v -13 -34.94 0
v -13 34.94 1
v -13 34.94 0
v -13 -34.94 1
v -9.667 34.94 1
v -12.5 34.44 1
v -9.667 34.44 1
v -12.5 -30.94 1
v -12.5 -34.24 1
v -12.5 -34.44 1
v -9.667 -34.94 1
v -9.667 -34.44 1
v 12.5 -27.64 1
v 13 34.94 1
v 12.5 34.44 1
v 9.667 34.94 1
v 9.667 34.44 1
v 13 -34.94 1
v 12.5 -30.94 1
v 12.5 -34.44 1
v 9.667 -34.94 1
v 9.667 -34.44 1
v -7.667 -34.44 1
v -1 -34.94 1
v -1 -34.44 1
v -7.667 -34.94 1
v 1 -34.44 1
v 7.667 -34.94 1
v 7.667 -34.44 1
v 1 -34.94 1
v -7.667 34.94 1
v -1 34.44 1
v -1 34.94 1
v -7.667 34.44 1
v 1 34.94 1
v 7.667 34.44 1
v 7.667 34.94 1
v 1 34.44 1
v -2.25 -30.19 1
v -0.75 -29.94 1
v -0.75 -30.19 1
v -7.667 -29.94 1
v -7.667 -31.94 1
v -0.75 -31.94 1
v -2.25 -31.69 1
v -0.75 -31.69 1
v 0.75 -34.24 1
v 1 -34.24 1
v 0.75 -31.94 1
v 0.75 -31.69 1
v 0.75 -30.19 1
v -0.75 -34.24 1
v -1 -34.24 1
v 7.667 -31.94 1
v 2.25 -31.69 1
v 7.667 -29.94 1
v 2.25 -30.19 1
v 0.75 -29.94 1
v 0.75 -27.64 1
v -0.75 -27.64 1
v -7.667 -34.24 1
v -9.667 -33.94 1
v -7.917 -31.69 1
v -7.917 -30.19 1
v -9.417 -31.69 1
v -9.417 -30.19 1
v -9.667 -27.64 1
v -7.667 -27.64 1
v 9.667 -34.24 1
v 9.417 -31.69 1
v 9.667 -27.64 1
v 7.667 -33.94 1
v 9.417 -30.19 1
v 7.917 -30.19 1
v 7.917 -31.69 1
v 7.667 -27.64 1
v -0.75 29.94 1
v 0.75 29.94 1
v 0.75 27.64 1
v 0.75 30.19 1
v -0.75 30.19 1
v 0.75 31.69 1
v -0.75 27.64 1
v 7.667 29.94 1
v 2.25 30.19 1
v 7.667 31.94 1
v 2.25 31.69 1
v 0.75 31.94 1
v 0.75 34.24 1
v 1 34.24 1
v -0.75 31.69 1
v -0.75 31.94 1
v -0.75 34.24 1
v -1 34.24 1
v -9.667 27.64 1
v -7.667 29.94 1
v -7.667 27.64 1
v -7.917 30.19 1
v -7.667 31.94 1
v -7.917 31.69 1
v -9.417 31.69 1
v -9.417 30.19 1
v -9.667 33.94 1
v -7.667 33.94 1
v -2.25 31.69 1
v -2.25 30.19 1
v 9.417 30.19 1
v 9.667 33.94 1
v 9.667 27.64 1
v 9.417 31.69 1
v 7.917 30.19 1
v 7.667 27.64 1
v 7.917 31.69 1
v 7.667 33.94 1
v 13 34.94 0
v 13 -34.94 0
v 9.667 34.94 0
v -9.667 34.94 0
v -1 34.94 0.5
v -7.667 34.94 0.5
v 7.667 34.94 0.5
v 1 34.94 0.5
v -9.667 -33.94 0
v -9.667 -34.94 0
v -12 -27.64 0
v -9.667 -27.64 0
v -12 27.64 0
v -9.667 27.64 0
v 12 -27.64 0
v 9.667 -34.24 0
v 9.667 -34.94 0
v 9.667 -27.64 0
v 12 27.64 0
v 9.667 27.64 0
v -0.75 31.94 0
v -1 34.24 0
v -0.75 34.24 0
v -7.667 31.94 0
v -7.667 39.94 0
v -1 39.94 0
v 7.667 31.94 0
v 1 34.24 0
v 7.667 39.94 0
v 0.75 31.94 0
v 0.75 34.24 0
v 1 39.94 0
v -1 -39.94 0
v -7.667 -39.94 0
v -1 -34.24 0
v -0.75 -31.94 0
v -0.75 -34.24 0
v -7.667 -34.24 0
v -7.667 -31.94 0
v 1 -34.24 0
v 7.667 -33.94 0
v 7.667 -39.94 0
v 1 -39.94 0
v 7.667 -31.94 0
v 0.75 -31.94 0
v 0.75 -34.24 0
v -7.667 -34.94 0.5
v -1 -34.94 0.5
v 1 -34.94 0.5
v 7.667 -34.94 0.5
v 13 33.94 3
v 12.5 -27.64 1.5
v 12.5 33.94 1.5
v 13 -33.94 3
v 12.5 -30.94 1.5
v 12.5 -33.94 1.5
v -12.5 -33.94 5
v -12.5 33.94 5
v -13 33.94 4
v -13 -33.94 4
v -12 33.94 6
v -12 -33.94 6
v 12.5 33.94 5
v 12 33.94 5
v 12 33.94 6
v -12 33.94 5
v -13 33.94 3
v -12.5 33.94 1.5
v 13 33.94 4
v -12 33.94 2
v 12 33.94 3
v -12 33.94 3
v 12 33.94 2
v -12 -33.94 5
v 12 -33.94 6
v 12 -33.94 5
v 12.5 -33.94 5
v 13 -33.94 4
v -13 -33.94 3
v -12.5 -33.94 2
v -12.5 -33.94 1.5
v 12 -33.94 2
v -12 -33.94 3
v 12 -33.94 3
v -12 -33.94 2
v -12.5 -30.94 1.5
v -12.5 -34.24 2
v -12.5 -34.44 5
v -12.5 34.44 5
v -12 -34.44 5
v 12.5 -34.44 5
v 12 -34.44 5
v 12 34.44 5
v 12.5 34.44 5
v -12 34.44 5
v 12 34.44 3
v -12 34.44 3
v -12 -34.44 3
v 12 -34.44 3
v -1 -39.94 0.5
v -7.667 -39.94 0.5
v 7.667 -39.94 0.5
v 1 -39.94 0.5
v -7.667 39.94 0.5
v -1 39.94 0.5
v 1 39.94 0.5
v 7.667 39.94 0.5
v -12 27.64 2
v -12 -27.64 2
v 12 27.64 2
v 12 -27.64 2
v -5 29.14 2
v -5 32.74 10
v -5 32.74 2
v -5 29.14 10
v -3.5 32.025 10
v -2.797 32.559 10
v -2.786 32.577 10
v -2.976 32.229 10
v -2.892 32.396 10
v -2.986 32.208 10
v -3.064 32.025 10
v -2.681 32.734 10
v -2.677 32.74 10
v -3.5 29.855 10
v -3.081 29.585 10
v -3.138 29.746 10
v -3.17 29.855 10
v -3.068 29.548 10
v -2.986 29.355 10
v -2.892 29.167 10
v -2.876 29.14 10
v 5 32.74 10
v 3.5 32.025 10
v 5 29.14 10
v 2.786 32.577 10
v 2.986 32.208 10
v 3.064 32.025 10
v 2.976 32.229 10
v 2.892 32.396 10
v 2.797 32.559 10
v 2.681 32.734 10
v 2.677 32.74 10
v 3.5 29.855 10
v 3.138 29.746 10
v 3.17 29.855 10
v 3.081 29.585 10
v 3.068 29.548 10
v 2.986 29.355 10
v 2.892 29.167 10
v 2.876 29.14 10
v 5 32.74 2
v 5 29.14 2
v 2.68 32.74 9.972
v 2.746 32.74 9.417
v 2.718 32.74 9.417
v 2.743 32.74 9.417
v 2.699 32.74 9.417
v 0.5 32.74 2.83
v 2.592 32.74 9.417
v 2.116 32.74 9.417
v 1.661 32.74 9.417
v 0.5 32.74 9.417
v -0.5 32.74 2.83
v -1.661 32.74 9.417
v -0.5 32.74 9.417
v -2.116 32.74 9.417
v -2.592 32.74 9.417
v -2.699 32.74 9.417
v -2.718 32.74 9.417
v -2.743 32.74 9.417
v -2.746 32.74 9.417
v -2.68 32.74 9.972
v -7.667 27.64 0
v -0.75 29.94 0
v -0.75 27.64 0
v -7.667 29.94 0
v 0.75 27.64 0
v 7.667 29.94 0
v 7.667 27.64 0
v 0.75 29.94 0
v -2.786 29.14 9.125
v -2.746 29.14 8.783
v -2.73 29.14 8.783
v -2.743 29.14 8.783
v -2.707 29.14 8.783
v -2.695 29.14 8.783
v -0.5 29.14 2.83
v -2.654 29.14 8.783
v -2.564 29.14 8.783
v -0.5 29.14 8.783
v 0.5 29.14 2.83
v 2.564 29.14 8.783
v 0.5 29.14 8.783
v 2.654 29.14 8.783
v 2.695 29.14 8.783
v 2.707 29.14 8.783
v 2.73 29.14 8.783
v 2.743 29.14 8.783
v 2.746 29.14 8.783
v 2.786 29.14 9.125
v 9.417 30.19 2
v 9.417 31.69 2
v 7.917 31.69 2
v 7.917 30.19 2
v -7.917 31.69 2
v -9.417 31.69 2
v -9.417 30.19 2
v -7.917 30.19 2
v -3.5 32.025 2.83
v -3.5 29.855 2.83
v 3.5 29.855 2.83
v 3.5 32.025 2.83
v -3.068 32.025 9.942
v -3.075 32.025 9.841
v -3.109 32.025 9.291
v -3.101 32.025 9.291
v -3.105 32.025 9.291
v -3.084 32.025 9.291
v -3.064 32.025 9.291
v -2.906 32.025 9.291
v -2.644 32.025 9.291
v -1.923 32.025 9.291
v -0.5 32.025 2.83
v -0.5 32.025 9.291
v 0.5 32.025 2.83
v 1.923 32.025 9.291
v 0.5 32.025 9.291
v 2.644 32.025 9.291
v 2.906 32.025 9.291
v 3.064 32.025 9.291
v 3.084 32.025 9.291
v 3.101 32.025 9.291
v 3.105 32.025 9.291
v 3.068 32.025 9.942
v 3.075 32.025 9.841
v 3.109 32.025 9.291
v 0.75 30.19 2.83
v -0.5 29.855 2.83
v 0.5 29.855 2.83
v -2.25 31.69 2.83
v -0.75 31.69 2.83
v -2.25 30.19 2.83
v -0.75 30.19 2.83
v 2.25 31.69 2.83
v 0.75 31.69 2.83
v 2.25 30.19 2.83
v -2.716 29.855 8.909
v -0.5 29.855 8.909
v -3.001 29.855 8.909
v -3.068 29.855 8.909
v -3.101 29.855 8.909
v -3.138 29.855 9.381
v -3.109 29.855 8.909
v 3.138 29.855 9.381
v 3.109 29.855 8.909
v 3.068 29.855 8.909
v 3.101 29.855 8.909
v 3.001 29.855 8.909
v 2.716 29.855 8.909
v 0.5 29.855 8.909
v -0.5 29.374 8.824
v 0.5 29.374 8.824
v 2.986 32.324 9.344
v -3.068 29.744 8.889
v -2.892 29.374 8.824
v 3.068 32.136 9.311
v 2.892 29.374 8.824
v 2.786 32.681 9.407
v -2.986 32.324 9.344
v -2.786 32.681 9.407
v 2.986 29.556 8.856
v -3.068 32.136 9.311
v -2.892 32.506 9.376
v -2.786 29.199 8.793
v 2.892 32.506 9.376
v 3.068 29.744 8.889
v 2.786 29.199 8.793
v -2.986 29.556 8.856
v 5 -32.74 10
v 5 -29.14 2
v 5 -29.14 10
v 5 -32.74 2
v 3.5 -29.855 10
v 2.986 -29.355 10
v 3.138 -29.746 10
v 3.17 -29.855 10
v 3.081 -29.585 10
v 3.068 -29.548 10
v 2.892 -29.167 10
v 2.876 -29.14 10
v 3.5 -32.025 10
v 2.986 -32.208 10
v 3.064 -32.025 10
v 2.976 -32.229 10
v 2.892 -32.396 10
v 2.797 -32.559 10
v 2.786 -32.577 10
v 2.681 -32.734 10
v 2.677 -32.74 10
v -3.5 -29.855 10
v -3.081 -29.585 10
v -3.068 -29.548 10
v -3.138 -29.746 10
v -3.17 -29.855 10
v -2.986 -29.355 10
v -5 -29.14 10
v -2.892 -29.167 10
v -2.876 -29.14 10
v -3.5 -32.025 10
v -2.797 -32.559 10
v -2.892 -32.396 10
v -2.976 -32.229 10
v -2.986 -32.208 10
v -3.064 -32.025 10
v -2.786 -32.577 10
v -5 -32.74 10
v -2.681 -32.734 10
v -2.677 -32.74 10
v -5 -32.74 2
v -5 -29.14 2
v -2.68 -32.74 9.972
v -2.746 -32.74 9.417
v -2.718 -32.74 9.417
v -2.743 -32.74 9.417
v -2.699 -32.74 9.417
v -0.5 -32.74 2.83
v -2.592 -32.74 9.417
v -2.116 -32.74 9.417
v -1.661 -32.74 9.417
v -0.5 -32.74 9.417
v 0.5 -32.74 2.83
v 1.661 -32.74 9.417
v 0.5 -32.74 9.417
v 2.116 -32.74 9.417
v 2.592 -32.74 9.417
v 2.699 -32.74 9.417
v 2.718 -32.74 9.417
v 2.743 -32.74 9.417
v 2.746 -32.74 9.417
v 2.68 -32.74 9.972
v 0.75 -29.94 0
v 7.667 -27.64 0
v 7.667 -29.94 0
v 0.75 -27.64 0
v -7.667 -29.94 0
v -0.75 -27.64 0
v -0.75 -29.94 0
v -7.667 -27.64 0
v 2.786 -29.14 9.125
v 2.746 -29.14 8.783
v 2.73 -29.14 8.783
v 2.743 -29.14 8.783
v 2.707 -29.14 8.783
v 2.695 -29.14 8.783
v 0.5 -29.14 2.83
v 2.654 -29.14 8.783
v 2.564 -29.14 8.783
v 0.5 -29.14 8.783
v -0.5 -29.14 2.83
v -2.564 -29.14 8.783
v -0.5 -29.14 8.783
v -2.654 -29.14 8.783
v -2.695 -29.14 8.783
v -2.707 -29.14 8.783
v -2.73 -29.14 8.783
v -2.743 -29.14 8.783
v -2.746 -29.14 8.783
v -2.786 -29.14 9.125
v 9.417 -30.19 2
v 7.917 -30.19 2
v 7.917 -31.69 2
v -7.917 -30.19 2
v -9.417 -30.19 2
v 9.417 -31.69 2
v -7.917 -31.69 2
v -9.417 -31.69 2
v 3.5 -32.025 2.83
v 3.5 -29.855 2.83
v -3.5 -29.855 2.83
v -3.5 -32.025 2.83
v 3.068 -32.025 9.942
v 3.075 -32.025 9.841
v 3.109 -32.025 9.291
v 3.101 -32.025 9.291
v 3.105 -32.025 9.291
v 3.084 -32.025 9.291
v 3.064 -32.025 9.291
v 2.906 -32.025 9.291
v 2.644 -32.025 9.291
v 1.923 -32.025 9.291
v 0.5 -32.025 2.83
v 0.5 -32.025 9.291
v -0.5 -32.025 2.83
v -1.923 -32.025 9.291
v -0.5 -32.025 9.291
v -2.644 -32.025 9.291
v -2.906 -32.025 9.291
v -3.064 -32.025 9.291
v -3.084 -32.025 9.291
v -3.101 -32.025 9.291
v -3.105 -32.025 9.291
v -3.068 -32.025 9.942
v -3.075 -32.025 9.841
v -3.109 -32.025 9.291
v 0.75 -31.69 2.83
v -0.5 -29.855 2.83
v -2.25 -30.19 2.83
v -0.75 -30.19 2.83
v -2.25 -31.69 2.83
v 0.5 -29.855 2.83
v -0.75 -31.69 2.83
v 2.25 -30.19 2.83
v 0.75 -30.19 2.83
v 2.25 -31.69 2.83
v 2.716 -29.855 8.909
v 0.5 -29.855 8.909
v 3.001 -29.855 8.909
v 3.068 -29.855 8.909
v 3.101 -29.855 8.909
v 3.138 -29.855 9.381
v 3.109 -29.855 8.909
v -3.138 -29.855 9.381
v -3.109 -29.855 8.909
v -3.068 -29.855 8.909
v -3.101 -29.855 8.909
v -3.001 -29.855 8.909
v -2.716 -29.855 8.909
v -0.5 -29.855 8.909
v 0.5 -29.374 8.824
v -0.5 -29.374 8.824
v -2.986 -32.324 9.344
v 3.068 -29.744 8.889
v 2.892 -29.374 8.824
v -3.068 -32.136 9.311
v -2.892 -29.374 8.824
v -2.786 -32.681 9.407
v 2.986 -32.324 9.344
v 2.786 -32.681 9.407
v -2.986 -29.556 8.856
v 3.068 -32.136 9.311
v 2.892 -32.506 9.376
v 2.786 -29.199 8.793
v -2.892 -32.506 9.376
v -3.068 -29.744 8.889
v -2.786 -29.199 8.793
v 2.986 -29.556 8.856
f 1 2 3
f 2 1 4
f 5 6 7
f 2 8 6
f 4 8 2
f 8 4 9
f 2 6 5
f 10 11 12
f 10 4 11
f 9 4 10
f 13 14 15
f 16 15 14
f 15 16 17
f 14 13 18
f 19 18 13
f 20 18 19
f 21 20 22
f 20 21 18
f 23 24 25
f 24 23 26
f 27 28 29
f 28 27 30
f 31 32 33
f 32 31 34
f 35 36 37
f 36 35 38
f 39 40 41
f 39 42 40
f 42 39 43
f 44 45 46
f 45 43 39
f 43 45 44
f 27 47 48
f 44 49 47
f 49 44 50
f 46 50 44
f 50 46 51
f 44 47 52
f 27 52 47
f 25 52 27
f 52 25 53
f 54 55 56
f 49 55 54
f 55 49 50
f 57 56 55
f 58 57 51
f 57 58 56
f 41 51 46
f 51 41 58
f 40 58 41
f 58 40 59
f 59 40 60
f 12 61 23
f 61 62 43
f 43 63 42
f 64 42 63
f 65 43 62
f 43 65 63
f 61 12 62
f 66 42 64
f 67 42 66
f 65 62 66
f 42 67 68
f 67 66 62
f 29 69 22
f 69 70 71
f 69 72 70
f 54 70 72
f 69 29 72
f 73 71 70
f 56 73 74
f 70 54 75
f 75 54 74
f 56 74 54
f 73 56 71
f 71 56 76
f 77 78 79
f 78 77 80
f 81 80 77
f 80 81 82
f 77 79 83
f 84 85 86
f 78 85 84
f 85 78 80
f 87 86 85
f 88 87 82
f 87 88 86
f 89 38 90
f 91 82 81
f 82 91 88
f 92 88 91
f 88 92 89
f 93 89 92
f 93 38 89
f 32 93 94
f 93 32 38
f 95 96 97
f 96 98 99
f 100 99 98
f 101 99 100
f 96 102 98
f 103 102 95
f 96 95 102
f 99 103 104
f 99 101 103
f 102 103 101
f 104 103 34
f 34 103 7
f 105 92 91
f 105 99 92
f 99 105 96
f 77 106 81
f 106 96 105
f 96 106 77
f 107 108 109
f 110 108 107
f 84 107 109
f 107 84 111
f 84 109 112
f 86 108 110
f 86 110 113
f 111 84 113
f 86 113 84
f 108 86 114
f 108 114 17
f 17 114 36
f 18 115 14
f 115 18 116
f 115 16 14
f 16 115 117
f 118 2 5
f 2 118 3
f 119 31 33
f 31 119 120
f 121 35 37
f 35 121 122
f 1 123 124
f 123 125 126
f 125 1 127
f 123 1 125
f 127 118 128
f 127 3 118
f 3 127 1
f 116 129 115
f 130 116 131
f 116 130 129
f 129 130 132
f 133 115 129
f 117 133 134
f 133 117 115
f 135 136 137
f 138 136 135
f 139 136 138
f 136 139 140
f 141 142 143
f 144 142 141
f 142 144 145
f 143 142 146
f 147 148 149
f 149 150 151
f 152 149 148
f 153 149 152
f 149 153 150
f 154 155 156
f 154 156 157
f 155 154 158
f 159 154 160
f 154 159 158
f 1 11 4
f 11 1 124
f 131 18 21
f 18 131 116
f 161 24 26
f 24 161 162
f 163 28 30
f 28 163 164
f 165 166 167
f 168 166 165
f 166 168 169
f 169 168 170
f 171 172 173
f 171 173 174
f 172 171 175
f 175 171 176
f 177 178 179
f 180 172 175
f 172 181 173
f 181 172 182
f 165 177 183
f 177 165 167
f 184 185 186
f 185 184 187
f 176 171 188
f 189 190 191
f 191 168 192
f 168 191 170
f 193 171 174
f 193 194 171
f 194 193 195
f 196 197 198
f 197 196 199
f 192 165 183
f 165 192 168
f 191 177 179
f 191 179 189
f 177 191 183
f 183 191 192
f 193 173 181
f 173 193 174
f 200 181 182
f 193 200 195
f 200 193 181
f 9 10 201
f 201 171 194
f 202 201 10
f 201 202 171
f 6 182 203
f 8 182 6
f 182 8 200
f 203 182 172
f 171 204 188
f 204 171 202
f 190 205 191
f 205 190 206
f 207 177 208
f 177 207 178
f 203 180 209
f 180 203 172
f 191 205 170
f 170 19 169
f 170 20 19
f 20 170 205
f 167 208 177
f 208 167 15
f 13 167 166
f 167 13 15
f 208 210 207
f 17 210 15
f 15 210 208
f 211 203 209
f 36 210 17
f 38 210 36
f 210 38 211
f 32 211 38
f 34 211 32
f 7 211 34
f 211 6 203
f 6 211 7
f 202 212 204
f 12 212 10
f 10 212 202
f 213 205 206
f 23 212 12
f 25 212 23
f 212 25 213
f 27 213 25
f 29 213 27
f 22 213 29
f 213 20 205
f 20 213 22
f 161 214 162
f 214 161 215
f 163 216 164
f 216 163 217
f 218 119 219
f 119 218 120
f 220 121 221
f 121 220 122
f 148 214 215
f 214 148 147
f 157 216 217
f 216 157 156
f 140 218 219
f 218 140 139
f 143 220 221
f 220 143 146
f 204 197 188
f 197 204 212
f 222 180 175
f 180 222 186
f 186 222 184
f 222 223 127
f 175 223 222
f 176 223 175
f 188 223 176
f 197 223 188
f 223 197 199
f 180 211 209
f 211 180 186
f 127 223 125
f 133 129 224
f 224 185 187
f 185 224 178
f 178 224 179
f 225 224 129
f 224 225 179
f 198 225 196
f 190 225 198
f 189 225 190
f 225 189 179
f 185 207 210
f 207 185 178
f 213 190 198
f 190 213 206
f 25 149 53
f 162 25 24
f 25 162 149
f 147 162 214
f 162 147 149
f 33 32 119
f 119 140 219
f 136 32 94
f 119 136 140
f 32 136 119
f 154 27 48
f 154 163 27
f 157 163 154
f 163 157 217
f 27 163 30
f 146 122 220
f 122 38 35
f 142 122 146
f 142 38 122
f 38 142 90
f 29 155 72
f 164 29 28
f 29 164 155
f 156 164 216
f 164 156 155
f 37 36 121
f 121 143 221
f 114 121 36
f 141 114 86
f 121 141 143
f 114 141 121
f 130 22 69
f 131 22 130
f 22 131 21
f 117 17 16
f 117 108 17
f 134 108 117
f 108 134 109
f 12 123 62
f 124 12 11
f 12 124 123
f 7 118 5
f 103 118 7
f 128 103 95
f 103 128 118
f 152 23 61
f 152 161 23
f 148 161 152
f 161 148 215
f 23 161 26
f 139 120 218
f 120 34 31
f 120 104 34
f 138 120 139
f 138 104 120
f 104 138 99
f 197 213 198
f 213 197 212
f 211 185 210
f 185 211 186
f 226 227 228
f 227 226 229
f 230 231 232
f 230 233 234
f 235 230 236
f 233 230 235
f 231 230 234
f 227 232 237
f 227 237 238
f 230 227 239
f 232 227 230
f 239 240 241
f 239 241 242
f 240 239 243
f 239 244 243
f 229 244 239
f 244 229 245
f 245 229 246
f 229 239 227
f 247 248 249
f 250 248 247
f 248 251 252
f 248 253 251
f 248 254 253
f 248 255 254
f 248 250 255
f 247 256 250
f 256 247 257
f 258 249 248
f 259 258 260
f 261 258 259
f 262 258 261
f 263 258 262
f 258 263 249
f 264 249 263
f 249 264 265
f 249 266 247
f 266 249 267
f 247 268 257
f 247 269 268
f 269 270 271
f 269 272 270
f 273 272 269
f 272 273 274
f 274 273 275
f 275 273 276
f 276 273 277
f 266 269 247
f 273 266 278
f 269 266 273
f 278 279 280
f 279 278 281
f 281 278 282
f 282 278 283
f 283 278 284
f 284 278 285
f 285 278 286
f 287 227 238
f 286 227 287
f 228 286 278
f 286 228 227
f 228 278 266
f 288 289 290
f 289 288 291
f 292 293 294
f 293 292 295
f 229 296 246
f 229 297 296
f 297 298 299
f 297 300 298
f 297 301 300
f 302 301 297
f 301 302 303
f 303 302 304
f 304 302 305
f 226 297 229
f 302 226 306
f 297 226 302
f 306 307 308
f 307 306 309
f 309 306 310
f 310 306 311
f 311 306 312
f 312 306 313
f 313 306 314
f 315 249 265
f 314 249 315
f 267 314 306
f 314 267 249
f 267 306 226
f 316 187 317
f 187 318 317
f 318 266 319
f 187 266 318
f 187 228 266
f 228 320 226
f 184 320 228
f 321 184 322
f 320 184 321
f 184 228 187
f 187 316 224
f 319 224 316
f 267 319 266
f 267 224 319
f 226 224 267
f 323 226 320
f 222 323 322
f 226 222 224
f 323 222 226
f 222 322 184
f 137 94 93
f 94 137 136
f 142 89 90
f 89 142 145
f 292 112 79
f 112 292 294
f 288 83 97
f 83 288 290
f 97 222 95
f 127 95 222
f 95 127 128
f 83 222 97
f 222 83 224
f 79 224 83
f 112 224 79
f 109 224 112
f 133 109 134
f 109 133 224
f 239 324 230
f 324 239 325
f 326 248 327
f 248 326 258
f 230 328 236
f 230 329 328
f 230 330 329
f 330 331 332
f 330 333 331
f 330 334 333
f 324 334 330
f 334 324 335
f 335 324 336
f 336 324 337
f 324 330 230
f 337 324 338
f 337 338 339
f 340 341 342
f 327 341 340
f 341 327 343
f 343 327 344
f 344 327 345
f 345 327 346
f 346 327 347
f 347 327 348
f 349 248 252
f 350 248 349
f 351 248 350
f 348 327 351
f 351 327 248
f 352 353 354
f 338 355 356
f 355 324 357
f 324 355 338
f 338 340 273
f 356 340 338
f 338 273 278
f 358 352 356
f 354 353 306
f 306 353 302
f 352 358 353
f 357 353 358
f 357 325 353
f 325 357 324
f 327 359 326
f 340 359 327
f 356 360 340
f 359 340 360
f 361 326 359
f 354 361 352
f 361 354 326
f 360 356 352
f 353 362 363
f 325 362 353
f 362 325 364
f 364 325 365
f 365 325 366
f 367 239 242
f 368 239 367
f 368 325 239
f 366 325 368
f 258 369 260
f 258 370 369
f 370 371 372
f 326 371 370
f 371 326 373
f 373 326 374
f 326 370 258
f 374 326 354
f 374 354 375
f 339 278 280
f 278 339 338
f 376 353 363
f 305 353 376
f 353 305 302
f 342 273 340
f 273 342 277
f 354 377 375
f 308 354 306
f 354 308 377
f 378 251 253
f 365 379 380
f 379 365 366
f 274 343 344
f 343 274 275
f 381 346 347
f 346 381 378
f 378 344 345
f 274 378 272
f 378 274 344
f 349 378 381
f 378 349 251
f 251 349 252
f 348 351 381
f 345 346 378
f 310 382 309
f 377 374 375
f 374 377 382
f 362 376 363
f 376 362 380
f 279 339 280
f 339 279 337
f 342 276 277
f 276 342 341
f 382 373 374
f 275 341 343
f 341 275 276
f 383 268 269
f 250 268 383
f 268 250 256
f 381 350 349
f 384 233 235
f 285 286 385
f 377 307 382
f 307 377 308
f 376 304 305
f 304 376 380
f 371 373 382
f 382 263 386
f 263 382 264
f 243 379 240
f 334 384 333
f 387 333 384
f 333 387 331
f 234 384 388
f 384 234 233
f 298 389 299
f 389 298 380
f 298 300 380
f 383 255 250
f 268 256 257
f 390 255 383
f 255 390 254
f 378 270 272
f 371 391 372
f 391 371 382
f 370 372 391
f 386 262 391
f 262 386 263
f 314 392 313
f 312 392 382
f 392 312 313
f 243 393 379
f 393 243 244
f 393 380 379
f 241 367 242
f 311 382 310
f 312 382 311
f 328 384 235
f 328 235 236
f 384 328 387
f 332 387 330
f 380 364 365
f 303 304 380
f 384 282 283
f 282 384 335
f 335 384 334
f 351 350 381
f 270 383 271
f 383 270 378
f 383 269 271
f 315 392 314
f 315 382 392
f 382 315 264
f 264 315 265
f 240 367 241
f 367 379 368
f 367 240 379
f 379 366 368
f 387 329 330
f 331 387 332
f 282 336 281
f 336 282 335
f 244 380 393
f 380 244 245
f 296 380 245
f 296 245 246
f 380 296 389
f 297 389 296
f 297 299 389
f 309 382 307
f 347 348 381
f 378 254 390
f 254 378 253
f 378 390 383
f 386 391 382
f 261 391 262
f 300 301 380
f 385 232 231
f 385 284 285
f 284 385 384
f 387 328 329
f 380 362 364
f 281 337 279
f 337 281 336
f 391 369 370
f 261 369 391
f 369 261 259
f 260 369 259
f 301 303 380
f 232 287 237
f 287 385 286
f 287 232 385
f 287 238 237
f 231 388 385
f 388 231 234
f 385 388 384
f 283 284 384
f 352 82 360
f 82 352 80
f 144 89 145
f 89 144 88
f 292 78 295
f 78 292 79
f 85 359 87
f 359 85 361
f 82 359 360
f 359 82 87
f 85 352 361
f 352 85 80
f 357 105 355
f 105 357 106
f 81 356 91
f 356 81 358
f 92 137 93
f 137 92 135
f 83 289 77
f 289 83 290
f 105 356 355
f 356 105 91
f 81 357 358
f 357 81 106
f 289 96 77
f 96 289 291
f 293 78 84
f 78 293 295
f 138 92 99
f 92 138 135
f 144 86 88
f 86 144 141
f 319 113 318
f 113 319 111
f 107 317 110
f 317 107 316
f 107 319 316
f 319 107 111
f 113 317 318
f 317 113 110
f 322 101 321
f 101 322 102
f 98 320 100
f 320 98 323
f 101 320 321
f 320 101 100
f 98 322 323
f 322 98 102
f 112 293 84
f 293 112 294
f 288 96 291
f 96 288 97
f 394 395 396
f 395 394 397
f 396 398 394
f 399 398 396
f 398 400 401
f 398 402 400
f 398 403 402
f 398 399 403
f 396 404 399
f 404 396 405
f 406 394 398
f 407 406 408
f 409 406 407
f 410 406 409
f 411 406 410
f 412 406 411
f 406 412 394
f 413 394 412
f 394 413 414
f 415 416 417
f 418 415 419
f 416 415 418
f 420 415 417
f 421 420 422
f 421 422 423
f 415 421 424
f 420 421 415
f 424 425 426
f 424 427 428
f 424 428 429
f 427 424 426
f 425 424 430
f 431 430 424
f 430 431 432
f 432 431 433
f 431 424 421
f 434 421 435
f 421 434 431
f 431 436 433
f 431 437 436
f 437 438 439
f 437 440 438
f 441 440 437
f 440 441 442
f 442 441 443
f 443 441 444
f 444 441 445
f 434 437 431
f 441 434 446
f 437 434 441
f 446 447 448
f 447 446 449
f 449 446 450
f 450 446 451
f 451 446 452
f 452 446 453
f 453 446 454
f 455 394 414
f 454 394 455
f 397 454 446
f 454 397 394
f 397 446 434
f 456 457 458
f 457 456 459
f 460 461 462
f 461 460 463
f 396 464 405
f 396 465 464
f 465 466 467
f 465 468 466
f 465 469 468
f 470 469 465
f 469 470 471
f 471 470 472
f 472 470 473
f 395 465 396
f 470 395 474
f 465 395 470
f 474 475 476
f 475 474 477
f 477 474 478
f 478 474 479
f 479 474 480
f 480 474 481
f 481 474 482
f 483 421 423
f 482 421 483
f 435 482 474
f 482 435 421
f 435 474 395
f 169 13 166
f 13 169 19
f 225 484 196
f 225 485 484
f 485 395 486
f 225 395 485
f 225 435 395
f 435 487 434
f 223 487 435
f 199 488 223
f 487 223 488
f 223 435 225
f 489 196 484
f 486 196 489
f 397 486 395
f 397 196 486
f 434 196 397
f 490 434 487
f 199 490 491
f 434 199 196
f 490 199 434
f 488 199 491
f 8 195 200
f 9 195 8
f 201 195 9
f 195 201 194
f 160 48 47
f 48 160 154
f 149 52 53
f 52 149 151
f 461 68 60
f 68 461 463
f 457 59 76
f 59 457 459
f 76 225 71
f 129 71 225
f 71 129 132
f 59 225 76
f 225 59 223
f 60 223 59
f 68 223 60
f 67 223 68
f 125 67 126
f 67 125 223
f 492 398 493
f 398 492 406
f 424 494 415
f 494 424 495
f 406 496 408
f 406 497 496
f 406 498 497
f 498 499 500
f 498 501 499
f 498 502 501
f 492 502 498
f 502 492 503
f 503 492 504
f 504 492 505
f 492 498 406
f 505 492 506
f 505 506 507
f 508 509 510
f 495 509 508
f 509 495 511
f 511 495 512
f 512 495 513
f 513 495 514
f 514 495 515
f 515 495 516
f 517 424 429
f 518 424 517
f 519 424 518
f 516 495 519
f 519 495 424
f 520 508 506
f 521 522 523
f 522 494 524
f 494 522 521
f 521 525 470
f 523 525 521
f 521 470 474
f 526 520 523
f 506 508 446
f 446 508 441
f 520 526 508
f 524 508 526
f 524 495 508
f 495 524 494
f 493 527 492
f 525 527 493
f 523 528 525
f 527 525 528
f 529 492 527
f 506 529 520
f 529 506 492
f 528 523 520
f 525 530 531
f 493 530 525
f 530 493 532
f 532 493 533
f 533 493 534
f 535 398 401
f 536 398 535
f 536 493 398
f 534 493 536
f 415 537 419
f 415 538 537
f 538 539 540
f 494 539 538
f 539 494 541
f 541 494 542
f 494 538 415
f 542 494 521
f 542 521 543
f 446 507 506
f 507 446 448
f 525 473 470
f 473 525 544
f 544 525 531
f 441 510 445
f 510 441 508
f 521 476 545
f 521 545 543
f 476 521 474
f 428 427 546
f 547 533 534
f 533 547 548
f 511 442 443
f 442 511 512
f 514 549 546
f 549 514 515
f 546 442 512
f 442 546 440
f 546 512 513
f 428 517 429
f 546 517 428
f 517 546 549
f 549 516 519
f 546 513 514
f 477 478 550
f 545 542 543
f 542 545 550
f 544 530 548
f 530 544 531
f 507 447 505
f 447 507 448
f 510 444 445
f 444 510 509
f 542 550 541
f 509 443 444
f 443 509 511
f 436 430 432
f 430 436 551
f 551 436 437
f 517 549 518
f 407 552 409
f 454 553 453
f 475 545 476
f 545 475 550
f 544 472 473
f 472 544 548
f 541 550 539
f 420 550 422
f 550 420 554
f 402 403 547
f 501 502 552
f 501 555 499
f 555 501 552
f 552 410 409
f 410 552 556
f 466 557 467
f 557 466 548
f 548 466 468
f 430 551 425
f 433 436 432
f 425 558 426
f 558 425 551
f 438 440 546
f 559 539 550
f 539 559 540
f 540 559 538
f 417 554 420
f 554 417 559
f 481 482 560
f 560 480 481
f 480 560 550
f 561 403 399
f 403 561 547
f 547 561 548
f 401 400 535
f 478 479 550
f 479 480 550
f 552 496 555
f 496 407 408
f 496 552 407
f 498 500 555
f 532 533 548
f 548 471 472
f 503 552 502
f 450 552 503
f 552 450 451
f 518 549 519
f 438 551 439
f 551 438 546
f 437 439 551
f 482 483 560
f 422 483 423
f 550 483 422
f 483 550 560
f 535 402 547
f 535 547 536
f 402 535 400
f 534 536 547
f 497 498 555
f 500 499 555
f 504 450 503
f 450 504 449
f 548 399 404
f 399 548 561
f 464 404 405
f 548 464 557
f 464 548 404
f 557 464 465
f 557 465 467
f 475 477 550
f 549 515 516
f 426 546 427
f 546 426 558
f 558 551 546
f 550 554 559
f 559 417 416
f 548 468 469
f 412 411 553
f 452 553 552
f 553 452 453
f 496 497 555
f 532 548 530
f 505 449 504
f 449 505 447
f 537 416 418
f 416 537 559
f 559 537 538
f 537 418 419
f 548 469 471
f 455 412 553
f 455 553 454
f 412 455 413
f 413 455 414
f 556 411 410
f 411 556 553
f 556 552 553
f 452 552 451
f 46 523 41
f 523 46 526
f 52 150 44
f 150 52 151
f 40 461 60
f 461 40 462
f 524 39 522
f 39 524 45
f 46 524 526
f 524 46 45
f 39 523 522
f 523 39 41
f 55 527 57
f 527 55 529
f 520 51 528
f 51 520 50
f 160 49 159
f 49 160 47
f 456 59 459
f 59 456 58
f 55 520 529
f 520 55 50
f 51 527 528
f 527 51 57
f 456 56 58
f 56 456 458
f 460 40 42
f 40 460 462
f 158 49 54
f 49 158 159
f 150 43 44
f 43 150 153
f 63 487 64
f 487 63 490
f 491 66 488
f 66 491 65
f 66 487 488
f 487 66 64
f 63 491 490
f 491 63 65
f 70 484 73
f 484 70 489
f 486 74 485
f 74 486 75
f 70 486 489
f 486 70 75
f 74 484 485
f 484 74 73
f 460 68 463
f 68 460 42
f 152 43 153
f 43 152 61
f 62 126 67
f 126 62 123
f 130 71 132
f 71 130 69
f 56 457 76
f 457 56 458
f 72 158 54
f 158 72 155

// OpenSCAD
$fn=100;

/* Camera */
cam_dia = 10.5;


/* LED PCB */
ledpcb_tol=2;
ledpcbw = 26;
ledpcbh = 71.88-ledpcb_tol;
ledpcb_thickness = 3.47;
ledpcb_header_pos = 25;
ledpcb_header_w = 9;
holedia = (cam_dia + 8);

/* SMD LED */
led_tol=1;
ledh = 2.76-1.59+led_tol;
ledw = 4+led_tol;
ledd = 1.6+led_tol;

/* Thorough Hole LED */
ledpin_tol=1;
ledpinwiredia=0.5+ledpin_tol;
ledpinpitch=2+ledpin_tol;
ledpinh=8.2+ledpin_tol;
ledpindia=5.6+ledpin_tol;

module cubee(x,y,z)
{
    translate([0,0,z/2])
        cube([x,y,z], center=true);
}

module led_holder(rotated)
{
    ledpinh_hold=1;
    holealld=ledh+ledpinh_hold+4;
    holderheight=10;
    difference()
    {
      union()
      {
        cubee(ledw+5,ledd+1,holderheight);
        cubee(ledpcbw-1,ledd+4,2);
      }
        // SMD
      translate([0,0,holderheight-holealld])
        cubee(ledw+2,ledh,holealld+0.1);
      translate([0,0,holderheight-holealld])
        cubee(1,100,holealld+0.1);
      
      // Through Hole
      translate([0,0,holderheight-ledpinh_hold+0.1])
        rotate([rotated,0,0])
        cylinder(r=ledpindia/2, h=ledpinh_hold+5);
      translate([ledpinpitch/2,0,0])
        cube([ledpinwiredia,ledpinwiredia,10], center=true);
      translate([-ledpinpitch/2,0,0])
        cube([ledpinwiredia,ledpinwiredia,10], center=true);
      
      // Underwire
      cube([1.5,ledpcbh+100,2], center=true);
      cube([ledpcbw*2/3,2,2], center=true);
      translate([ledpcbw*1/3,0,0])
        cube([ledpinwiredia,ledpinwiredia,10], center=true);
      translate([-ledpcbw*1/3,0,0])
        cube([ledpinwiredia,ledpinwiredia,10], center=true);
      translate([ledpcbw*1/3,0,0])
        cube([2,ledpcbh+100,2], center=true);
      translate([-ledpcbw*1/3,0,0])
        cube([2,ledpcbh+100,2], center=true);
    }

    if(0)
    %translate([0,0,holderheight-ledpinh_hold+0.1])
        rotate([rotated,0,0])
        cylinder(r=ledpindia/2, h=ledpinh_hold,center=true);
}

translate([0,ledpcbh/2-4,0])
    led_holder(10);
translate([0,-ledpcbh/2+4,0])
    rotate([0,0,180])
    led_holder(10);


difference()
{
    union()
    {
        cubee(ledpcbw,ledpcbh,1);
        hull()
        {
            translate([0,0,5])
                cubee(ledpcbw-2,ledpcbh-2,1);
            translate([0,0,3])
                cubee(ledpcbw,ledpcbh-2,1);
            cubee(ledpcbw-2,ledpcbh-2,1);
        }
        cubee(ledpcbw-1,ledpcbh-1,5);
        cubee(ledpcbw-10,ledpcbh+10,0.5);
    }
    cube([ledpcbw-2,ledpcbh-2,100], center=true);
    
    cube([2,ledpcbh+100,2], center=true);
    translate([ledpcbw/3,0,0])
    cube([2,ledpcbh+100,2], center=true);
    translate([-ledpcbw/3,0,0])
    cube([2,ledpcbh+100,2], center=true);

    translate([0,0,3])
        cubee(ledpcbw-2,ledpcbh,100);
}
